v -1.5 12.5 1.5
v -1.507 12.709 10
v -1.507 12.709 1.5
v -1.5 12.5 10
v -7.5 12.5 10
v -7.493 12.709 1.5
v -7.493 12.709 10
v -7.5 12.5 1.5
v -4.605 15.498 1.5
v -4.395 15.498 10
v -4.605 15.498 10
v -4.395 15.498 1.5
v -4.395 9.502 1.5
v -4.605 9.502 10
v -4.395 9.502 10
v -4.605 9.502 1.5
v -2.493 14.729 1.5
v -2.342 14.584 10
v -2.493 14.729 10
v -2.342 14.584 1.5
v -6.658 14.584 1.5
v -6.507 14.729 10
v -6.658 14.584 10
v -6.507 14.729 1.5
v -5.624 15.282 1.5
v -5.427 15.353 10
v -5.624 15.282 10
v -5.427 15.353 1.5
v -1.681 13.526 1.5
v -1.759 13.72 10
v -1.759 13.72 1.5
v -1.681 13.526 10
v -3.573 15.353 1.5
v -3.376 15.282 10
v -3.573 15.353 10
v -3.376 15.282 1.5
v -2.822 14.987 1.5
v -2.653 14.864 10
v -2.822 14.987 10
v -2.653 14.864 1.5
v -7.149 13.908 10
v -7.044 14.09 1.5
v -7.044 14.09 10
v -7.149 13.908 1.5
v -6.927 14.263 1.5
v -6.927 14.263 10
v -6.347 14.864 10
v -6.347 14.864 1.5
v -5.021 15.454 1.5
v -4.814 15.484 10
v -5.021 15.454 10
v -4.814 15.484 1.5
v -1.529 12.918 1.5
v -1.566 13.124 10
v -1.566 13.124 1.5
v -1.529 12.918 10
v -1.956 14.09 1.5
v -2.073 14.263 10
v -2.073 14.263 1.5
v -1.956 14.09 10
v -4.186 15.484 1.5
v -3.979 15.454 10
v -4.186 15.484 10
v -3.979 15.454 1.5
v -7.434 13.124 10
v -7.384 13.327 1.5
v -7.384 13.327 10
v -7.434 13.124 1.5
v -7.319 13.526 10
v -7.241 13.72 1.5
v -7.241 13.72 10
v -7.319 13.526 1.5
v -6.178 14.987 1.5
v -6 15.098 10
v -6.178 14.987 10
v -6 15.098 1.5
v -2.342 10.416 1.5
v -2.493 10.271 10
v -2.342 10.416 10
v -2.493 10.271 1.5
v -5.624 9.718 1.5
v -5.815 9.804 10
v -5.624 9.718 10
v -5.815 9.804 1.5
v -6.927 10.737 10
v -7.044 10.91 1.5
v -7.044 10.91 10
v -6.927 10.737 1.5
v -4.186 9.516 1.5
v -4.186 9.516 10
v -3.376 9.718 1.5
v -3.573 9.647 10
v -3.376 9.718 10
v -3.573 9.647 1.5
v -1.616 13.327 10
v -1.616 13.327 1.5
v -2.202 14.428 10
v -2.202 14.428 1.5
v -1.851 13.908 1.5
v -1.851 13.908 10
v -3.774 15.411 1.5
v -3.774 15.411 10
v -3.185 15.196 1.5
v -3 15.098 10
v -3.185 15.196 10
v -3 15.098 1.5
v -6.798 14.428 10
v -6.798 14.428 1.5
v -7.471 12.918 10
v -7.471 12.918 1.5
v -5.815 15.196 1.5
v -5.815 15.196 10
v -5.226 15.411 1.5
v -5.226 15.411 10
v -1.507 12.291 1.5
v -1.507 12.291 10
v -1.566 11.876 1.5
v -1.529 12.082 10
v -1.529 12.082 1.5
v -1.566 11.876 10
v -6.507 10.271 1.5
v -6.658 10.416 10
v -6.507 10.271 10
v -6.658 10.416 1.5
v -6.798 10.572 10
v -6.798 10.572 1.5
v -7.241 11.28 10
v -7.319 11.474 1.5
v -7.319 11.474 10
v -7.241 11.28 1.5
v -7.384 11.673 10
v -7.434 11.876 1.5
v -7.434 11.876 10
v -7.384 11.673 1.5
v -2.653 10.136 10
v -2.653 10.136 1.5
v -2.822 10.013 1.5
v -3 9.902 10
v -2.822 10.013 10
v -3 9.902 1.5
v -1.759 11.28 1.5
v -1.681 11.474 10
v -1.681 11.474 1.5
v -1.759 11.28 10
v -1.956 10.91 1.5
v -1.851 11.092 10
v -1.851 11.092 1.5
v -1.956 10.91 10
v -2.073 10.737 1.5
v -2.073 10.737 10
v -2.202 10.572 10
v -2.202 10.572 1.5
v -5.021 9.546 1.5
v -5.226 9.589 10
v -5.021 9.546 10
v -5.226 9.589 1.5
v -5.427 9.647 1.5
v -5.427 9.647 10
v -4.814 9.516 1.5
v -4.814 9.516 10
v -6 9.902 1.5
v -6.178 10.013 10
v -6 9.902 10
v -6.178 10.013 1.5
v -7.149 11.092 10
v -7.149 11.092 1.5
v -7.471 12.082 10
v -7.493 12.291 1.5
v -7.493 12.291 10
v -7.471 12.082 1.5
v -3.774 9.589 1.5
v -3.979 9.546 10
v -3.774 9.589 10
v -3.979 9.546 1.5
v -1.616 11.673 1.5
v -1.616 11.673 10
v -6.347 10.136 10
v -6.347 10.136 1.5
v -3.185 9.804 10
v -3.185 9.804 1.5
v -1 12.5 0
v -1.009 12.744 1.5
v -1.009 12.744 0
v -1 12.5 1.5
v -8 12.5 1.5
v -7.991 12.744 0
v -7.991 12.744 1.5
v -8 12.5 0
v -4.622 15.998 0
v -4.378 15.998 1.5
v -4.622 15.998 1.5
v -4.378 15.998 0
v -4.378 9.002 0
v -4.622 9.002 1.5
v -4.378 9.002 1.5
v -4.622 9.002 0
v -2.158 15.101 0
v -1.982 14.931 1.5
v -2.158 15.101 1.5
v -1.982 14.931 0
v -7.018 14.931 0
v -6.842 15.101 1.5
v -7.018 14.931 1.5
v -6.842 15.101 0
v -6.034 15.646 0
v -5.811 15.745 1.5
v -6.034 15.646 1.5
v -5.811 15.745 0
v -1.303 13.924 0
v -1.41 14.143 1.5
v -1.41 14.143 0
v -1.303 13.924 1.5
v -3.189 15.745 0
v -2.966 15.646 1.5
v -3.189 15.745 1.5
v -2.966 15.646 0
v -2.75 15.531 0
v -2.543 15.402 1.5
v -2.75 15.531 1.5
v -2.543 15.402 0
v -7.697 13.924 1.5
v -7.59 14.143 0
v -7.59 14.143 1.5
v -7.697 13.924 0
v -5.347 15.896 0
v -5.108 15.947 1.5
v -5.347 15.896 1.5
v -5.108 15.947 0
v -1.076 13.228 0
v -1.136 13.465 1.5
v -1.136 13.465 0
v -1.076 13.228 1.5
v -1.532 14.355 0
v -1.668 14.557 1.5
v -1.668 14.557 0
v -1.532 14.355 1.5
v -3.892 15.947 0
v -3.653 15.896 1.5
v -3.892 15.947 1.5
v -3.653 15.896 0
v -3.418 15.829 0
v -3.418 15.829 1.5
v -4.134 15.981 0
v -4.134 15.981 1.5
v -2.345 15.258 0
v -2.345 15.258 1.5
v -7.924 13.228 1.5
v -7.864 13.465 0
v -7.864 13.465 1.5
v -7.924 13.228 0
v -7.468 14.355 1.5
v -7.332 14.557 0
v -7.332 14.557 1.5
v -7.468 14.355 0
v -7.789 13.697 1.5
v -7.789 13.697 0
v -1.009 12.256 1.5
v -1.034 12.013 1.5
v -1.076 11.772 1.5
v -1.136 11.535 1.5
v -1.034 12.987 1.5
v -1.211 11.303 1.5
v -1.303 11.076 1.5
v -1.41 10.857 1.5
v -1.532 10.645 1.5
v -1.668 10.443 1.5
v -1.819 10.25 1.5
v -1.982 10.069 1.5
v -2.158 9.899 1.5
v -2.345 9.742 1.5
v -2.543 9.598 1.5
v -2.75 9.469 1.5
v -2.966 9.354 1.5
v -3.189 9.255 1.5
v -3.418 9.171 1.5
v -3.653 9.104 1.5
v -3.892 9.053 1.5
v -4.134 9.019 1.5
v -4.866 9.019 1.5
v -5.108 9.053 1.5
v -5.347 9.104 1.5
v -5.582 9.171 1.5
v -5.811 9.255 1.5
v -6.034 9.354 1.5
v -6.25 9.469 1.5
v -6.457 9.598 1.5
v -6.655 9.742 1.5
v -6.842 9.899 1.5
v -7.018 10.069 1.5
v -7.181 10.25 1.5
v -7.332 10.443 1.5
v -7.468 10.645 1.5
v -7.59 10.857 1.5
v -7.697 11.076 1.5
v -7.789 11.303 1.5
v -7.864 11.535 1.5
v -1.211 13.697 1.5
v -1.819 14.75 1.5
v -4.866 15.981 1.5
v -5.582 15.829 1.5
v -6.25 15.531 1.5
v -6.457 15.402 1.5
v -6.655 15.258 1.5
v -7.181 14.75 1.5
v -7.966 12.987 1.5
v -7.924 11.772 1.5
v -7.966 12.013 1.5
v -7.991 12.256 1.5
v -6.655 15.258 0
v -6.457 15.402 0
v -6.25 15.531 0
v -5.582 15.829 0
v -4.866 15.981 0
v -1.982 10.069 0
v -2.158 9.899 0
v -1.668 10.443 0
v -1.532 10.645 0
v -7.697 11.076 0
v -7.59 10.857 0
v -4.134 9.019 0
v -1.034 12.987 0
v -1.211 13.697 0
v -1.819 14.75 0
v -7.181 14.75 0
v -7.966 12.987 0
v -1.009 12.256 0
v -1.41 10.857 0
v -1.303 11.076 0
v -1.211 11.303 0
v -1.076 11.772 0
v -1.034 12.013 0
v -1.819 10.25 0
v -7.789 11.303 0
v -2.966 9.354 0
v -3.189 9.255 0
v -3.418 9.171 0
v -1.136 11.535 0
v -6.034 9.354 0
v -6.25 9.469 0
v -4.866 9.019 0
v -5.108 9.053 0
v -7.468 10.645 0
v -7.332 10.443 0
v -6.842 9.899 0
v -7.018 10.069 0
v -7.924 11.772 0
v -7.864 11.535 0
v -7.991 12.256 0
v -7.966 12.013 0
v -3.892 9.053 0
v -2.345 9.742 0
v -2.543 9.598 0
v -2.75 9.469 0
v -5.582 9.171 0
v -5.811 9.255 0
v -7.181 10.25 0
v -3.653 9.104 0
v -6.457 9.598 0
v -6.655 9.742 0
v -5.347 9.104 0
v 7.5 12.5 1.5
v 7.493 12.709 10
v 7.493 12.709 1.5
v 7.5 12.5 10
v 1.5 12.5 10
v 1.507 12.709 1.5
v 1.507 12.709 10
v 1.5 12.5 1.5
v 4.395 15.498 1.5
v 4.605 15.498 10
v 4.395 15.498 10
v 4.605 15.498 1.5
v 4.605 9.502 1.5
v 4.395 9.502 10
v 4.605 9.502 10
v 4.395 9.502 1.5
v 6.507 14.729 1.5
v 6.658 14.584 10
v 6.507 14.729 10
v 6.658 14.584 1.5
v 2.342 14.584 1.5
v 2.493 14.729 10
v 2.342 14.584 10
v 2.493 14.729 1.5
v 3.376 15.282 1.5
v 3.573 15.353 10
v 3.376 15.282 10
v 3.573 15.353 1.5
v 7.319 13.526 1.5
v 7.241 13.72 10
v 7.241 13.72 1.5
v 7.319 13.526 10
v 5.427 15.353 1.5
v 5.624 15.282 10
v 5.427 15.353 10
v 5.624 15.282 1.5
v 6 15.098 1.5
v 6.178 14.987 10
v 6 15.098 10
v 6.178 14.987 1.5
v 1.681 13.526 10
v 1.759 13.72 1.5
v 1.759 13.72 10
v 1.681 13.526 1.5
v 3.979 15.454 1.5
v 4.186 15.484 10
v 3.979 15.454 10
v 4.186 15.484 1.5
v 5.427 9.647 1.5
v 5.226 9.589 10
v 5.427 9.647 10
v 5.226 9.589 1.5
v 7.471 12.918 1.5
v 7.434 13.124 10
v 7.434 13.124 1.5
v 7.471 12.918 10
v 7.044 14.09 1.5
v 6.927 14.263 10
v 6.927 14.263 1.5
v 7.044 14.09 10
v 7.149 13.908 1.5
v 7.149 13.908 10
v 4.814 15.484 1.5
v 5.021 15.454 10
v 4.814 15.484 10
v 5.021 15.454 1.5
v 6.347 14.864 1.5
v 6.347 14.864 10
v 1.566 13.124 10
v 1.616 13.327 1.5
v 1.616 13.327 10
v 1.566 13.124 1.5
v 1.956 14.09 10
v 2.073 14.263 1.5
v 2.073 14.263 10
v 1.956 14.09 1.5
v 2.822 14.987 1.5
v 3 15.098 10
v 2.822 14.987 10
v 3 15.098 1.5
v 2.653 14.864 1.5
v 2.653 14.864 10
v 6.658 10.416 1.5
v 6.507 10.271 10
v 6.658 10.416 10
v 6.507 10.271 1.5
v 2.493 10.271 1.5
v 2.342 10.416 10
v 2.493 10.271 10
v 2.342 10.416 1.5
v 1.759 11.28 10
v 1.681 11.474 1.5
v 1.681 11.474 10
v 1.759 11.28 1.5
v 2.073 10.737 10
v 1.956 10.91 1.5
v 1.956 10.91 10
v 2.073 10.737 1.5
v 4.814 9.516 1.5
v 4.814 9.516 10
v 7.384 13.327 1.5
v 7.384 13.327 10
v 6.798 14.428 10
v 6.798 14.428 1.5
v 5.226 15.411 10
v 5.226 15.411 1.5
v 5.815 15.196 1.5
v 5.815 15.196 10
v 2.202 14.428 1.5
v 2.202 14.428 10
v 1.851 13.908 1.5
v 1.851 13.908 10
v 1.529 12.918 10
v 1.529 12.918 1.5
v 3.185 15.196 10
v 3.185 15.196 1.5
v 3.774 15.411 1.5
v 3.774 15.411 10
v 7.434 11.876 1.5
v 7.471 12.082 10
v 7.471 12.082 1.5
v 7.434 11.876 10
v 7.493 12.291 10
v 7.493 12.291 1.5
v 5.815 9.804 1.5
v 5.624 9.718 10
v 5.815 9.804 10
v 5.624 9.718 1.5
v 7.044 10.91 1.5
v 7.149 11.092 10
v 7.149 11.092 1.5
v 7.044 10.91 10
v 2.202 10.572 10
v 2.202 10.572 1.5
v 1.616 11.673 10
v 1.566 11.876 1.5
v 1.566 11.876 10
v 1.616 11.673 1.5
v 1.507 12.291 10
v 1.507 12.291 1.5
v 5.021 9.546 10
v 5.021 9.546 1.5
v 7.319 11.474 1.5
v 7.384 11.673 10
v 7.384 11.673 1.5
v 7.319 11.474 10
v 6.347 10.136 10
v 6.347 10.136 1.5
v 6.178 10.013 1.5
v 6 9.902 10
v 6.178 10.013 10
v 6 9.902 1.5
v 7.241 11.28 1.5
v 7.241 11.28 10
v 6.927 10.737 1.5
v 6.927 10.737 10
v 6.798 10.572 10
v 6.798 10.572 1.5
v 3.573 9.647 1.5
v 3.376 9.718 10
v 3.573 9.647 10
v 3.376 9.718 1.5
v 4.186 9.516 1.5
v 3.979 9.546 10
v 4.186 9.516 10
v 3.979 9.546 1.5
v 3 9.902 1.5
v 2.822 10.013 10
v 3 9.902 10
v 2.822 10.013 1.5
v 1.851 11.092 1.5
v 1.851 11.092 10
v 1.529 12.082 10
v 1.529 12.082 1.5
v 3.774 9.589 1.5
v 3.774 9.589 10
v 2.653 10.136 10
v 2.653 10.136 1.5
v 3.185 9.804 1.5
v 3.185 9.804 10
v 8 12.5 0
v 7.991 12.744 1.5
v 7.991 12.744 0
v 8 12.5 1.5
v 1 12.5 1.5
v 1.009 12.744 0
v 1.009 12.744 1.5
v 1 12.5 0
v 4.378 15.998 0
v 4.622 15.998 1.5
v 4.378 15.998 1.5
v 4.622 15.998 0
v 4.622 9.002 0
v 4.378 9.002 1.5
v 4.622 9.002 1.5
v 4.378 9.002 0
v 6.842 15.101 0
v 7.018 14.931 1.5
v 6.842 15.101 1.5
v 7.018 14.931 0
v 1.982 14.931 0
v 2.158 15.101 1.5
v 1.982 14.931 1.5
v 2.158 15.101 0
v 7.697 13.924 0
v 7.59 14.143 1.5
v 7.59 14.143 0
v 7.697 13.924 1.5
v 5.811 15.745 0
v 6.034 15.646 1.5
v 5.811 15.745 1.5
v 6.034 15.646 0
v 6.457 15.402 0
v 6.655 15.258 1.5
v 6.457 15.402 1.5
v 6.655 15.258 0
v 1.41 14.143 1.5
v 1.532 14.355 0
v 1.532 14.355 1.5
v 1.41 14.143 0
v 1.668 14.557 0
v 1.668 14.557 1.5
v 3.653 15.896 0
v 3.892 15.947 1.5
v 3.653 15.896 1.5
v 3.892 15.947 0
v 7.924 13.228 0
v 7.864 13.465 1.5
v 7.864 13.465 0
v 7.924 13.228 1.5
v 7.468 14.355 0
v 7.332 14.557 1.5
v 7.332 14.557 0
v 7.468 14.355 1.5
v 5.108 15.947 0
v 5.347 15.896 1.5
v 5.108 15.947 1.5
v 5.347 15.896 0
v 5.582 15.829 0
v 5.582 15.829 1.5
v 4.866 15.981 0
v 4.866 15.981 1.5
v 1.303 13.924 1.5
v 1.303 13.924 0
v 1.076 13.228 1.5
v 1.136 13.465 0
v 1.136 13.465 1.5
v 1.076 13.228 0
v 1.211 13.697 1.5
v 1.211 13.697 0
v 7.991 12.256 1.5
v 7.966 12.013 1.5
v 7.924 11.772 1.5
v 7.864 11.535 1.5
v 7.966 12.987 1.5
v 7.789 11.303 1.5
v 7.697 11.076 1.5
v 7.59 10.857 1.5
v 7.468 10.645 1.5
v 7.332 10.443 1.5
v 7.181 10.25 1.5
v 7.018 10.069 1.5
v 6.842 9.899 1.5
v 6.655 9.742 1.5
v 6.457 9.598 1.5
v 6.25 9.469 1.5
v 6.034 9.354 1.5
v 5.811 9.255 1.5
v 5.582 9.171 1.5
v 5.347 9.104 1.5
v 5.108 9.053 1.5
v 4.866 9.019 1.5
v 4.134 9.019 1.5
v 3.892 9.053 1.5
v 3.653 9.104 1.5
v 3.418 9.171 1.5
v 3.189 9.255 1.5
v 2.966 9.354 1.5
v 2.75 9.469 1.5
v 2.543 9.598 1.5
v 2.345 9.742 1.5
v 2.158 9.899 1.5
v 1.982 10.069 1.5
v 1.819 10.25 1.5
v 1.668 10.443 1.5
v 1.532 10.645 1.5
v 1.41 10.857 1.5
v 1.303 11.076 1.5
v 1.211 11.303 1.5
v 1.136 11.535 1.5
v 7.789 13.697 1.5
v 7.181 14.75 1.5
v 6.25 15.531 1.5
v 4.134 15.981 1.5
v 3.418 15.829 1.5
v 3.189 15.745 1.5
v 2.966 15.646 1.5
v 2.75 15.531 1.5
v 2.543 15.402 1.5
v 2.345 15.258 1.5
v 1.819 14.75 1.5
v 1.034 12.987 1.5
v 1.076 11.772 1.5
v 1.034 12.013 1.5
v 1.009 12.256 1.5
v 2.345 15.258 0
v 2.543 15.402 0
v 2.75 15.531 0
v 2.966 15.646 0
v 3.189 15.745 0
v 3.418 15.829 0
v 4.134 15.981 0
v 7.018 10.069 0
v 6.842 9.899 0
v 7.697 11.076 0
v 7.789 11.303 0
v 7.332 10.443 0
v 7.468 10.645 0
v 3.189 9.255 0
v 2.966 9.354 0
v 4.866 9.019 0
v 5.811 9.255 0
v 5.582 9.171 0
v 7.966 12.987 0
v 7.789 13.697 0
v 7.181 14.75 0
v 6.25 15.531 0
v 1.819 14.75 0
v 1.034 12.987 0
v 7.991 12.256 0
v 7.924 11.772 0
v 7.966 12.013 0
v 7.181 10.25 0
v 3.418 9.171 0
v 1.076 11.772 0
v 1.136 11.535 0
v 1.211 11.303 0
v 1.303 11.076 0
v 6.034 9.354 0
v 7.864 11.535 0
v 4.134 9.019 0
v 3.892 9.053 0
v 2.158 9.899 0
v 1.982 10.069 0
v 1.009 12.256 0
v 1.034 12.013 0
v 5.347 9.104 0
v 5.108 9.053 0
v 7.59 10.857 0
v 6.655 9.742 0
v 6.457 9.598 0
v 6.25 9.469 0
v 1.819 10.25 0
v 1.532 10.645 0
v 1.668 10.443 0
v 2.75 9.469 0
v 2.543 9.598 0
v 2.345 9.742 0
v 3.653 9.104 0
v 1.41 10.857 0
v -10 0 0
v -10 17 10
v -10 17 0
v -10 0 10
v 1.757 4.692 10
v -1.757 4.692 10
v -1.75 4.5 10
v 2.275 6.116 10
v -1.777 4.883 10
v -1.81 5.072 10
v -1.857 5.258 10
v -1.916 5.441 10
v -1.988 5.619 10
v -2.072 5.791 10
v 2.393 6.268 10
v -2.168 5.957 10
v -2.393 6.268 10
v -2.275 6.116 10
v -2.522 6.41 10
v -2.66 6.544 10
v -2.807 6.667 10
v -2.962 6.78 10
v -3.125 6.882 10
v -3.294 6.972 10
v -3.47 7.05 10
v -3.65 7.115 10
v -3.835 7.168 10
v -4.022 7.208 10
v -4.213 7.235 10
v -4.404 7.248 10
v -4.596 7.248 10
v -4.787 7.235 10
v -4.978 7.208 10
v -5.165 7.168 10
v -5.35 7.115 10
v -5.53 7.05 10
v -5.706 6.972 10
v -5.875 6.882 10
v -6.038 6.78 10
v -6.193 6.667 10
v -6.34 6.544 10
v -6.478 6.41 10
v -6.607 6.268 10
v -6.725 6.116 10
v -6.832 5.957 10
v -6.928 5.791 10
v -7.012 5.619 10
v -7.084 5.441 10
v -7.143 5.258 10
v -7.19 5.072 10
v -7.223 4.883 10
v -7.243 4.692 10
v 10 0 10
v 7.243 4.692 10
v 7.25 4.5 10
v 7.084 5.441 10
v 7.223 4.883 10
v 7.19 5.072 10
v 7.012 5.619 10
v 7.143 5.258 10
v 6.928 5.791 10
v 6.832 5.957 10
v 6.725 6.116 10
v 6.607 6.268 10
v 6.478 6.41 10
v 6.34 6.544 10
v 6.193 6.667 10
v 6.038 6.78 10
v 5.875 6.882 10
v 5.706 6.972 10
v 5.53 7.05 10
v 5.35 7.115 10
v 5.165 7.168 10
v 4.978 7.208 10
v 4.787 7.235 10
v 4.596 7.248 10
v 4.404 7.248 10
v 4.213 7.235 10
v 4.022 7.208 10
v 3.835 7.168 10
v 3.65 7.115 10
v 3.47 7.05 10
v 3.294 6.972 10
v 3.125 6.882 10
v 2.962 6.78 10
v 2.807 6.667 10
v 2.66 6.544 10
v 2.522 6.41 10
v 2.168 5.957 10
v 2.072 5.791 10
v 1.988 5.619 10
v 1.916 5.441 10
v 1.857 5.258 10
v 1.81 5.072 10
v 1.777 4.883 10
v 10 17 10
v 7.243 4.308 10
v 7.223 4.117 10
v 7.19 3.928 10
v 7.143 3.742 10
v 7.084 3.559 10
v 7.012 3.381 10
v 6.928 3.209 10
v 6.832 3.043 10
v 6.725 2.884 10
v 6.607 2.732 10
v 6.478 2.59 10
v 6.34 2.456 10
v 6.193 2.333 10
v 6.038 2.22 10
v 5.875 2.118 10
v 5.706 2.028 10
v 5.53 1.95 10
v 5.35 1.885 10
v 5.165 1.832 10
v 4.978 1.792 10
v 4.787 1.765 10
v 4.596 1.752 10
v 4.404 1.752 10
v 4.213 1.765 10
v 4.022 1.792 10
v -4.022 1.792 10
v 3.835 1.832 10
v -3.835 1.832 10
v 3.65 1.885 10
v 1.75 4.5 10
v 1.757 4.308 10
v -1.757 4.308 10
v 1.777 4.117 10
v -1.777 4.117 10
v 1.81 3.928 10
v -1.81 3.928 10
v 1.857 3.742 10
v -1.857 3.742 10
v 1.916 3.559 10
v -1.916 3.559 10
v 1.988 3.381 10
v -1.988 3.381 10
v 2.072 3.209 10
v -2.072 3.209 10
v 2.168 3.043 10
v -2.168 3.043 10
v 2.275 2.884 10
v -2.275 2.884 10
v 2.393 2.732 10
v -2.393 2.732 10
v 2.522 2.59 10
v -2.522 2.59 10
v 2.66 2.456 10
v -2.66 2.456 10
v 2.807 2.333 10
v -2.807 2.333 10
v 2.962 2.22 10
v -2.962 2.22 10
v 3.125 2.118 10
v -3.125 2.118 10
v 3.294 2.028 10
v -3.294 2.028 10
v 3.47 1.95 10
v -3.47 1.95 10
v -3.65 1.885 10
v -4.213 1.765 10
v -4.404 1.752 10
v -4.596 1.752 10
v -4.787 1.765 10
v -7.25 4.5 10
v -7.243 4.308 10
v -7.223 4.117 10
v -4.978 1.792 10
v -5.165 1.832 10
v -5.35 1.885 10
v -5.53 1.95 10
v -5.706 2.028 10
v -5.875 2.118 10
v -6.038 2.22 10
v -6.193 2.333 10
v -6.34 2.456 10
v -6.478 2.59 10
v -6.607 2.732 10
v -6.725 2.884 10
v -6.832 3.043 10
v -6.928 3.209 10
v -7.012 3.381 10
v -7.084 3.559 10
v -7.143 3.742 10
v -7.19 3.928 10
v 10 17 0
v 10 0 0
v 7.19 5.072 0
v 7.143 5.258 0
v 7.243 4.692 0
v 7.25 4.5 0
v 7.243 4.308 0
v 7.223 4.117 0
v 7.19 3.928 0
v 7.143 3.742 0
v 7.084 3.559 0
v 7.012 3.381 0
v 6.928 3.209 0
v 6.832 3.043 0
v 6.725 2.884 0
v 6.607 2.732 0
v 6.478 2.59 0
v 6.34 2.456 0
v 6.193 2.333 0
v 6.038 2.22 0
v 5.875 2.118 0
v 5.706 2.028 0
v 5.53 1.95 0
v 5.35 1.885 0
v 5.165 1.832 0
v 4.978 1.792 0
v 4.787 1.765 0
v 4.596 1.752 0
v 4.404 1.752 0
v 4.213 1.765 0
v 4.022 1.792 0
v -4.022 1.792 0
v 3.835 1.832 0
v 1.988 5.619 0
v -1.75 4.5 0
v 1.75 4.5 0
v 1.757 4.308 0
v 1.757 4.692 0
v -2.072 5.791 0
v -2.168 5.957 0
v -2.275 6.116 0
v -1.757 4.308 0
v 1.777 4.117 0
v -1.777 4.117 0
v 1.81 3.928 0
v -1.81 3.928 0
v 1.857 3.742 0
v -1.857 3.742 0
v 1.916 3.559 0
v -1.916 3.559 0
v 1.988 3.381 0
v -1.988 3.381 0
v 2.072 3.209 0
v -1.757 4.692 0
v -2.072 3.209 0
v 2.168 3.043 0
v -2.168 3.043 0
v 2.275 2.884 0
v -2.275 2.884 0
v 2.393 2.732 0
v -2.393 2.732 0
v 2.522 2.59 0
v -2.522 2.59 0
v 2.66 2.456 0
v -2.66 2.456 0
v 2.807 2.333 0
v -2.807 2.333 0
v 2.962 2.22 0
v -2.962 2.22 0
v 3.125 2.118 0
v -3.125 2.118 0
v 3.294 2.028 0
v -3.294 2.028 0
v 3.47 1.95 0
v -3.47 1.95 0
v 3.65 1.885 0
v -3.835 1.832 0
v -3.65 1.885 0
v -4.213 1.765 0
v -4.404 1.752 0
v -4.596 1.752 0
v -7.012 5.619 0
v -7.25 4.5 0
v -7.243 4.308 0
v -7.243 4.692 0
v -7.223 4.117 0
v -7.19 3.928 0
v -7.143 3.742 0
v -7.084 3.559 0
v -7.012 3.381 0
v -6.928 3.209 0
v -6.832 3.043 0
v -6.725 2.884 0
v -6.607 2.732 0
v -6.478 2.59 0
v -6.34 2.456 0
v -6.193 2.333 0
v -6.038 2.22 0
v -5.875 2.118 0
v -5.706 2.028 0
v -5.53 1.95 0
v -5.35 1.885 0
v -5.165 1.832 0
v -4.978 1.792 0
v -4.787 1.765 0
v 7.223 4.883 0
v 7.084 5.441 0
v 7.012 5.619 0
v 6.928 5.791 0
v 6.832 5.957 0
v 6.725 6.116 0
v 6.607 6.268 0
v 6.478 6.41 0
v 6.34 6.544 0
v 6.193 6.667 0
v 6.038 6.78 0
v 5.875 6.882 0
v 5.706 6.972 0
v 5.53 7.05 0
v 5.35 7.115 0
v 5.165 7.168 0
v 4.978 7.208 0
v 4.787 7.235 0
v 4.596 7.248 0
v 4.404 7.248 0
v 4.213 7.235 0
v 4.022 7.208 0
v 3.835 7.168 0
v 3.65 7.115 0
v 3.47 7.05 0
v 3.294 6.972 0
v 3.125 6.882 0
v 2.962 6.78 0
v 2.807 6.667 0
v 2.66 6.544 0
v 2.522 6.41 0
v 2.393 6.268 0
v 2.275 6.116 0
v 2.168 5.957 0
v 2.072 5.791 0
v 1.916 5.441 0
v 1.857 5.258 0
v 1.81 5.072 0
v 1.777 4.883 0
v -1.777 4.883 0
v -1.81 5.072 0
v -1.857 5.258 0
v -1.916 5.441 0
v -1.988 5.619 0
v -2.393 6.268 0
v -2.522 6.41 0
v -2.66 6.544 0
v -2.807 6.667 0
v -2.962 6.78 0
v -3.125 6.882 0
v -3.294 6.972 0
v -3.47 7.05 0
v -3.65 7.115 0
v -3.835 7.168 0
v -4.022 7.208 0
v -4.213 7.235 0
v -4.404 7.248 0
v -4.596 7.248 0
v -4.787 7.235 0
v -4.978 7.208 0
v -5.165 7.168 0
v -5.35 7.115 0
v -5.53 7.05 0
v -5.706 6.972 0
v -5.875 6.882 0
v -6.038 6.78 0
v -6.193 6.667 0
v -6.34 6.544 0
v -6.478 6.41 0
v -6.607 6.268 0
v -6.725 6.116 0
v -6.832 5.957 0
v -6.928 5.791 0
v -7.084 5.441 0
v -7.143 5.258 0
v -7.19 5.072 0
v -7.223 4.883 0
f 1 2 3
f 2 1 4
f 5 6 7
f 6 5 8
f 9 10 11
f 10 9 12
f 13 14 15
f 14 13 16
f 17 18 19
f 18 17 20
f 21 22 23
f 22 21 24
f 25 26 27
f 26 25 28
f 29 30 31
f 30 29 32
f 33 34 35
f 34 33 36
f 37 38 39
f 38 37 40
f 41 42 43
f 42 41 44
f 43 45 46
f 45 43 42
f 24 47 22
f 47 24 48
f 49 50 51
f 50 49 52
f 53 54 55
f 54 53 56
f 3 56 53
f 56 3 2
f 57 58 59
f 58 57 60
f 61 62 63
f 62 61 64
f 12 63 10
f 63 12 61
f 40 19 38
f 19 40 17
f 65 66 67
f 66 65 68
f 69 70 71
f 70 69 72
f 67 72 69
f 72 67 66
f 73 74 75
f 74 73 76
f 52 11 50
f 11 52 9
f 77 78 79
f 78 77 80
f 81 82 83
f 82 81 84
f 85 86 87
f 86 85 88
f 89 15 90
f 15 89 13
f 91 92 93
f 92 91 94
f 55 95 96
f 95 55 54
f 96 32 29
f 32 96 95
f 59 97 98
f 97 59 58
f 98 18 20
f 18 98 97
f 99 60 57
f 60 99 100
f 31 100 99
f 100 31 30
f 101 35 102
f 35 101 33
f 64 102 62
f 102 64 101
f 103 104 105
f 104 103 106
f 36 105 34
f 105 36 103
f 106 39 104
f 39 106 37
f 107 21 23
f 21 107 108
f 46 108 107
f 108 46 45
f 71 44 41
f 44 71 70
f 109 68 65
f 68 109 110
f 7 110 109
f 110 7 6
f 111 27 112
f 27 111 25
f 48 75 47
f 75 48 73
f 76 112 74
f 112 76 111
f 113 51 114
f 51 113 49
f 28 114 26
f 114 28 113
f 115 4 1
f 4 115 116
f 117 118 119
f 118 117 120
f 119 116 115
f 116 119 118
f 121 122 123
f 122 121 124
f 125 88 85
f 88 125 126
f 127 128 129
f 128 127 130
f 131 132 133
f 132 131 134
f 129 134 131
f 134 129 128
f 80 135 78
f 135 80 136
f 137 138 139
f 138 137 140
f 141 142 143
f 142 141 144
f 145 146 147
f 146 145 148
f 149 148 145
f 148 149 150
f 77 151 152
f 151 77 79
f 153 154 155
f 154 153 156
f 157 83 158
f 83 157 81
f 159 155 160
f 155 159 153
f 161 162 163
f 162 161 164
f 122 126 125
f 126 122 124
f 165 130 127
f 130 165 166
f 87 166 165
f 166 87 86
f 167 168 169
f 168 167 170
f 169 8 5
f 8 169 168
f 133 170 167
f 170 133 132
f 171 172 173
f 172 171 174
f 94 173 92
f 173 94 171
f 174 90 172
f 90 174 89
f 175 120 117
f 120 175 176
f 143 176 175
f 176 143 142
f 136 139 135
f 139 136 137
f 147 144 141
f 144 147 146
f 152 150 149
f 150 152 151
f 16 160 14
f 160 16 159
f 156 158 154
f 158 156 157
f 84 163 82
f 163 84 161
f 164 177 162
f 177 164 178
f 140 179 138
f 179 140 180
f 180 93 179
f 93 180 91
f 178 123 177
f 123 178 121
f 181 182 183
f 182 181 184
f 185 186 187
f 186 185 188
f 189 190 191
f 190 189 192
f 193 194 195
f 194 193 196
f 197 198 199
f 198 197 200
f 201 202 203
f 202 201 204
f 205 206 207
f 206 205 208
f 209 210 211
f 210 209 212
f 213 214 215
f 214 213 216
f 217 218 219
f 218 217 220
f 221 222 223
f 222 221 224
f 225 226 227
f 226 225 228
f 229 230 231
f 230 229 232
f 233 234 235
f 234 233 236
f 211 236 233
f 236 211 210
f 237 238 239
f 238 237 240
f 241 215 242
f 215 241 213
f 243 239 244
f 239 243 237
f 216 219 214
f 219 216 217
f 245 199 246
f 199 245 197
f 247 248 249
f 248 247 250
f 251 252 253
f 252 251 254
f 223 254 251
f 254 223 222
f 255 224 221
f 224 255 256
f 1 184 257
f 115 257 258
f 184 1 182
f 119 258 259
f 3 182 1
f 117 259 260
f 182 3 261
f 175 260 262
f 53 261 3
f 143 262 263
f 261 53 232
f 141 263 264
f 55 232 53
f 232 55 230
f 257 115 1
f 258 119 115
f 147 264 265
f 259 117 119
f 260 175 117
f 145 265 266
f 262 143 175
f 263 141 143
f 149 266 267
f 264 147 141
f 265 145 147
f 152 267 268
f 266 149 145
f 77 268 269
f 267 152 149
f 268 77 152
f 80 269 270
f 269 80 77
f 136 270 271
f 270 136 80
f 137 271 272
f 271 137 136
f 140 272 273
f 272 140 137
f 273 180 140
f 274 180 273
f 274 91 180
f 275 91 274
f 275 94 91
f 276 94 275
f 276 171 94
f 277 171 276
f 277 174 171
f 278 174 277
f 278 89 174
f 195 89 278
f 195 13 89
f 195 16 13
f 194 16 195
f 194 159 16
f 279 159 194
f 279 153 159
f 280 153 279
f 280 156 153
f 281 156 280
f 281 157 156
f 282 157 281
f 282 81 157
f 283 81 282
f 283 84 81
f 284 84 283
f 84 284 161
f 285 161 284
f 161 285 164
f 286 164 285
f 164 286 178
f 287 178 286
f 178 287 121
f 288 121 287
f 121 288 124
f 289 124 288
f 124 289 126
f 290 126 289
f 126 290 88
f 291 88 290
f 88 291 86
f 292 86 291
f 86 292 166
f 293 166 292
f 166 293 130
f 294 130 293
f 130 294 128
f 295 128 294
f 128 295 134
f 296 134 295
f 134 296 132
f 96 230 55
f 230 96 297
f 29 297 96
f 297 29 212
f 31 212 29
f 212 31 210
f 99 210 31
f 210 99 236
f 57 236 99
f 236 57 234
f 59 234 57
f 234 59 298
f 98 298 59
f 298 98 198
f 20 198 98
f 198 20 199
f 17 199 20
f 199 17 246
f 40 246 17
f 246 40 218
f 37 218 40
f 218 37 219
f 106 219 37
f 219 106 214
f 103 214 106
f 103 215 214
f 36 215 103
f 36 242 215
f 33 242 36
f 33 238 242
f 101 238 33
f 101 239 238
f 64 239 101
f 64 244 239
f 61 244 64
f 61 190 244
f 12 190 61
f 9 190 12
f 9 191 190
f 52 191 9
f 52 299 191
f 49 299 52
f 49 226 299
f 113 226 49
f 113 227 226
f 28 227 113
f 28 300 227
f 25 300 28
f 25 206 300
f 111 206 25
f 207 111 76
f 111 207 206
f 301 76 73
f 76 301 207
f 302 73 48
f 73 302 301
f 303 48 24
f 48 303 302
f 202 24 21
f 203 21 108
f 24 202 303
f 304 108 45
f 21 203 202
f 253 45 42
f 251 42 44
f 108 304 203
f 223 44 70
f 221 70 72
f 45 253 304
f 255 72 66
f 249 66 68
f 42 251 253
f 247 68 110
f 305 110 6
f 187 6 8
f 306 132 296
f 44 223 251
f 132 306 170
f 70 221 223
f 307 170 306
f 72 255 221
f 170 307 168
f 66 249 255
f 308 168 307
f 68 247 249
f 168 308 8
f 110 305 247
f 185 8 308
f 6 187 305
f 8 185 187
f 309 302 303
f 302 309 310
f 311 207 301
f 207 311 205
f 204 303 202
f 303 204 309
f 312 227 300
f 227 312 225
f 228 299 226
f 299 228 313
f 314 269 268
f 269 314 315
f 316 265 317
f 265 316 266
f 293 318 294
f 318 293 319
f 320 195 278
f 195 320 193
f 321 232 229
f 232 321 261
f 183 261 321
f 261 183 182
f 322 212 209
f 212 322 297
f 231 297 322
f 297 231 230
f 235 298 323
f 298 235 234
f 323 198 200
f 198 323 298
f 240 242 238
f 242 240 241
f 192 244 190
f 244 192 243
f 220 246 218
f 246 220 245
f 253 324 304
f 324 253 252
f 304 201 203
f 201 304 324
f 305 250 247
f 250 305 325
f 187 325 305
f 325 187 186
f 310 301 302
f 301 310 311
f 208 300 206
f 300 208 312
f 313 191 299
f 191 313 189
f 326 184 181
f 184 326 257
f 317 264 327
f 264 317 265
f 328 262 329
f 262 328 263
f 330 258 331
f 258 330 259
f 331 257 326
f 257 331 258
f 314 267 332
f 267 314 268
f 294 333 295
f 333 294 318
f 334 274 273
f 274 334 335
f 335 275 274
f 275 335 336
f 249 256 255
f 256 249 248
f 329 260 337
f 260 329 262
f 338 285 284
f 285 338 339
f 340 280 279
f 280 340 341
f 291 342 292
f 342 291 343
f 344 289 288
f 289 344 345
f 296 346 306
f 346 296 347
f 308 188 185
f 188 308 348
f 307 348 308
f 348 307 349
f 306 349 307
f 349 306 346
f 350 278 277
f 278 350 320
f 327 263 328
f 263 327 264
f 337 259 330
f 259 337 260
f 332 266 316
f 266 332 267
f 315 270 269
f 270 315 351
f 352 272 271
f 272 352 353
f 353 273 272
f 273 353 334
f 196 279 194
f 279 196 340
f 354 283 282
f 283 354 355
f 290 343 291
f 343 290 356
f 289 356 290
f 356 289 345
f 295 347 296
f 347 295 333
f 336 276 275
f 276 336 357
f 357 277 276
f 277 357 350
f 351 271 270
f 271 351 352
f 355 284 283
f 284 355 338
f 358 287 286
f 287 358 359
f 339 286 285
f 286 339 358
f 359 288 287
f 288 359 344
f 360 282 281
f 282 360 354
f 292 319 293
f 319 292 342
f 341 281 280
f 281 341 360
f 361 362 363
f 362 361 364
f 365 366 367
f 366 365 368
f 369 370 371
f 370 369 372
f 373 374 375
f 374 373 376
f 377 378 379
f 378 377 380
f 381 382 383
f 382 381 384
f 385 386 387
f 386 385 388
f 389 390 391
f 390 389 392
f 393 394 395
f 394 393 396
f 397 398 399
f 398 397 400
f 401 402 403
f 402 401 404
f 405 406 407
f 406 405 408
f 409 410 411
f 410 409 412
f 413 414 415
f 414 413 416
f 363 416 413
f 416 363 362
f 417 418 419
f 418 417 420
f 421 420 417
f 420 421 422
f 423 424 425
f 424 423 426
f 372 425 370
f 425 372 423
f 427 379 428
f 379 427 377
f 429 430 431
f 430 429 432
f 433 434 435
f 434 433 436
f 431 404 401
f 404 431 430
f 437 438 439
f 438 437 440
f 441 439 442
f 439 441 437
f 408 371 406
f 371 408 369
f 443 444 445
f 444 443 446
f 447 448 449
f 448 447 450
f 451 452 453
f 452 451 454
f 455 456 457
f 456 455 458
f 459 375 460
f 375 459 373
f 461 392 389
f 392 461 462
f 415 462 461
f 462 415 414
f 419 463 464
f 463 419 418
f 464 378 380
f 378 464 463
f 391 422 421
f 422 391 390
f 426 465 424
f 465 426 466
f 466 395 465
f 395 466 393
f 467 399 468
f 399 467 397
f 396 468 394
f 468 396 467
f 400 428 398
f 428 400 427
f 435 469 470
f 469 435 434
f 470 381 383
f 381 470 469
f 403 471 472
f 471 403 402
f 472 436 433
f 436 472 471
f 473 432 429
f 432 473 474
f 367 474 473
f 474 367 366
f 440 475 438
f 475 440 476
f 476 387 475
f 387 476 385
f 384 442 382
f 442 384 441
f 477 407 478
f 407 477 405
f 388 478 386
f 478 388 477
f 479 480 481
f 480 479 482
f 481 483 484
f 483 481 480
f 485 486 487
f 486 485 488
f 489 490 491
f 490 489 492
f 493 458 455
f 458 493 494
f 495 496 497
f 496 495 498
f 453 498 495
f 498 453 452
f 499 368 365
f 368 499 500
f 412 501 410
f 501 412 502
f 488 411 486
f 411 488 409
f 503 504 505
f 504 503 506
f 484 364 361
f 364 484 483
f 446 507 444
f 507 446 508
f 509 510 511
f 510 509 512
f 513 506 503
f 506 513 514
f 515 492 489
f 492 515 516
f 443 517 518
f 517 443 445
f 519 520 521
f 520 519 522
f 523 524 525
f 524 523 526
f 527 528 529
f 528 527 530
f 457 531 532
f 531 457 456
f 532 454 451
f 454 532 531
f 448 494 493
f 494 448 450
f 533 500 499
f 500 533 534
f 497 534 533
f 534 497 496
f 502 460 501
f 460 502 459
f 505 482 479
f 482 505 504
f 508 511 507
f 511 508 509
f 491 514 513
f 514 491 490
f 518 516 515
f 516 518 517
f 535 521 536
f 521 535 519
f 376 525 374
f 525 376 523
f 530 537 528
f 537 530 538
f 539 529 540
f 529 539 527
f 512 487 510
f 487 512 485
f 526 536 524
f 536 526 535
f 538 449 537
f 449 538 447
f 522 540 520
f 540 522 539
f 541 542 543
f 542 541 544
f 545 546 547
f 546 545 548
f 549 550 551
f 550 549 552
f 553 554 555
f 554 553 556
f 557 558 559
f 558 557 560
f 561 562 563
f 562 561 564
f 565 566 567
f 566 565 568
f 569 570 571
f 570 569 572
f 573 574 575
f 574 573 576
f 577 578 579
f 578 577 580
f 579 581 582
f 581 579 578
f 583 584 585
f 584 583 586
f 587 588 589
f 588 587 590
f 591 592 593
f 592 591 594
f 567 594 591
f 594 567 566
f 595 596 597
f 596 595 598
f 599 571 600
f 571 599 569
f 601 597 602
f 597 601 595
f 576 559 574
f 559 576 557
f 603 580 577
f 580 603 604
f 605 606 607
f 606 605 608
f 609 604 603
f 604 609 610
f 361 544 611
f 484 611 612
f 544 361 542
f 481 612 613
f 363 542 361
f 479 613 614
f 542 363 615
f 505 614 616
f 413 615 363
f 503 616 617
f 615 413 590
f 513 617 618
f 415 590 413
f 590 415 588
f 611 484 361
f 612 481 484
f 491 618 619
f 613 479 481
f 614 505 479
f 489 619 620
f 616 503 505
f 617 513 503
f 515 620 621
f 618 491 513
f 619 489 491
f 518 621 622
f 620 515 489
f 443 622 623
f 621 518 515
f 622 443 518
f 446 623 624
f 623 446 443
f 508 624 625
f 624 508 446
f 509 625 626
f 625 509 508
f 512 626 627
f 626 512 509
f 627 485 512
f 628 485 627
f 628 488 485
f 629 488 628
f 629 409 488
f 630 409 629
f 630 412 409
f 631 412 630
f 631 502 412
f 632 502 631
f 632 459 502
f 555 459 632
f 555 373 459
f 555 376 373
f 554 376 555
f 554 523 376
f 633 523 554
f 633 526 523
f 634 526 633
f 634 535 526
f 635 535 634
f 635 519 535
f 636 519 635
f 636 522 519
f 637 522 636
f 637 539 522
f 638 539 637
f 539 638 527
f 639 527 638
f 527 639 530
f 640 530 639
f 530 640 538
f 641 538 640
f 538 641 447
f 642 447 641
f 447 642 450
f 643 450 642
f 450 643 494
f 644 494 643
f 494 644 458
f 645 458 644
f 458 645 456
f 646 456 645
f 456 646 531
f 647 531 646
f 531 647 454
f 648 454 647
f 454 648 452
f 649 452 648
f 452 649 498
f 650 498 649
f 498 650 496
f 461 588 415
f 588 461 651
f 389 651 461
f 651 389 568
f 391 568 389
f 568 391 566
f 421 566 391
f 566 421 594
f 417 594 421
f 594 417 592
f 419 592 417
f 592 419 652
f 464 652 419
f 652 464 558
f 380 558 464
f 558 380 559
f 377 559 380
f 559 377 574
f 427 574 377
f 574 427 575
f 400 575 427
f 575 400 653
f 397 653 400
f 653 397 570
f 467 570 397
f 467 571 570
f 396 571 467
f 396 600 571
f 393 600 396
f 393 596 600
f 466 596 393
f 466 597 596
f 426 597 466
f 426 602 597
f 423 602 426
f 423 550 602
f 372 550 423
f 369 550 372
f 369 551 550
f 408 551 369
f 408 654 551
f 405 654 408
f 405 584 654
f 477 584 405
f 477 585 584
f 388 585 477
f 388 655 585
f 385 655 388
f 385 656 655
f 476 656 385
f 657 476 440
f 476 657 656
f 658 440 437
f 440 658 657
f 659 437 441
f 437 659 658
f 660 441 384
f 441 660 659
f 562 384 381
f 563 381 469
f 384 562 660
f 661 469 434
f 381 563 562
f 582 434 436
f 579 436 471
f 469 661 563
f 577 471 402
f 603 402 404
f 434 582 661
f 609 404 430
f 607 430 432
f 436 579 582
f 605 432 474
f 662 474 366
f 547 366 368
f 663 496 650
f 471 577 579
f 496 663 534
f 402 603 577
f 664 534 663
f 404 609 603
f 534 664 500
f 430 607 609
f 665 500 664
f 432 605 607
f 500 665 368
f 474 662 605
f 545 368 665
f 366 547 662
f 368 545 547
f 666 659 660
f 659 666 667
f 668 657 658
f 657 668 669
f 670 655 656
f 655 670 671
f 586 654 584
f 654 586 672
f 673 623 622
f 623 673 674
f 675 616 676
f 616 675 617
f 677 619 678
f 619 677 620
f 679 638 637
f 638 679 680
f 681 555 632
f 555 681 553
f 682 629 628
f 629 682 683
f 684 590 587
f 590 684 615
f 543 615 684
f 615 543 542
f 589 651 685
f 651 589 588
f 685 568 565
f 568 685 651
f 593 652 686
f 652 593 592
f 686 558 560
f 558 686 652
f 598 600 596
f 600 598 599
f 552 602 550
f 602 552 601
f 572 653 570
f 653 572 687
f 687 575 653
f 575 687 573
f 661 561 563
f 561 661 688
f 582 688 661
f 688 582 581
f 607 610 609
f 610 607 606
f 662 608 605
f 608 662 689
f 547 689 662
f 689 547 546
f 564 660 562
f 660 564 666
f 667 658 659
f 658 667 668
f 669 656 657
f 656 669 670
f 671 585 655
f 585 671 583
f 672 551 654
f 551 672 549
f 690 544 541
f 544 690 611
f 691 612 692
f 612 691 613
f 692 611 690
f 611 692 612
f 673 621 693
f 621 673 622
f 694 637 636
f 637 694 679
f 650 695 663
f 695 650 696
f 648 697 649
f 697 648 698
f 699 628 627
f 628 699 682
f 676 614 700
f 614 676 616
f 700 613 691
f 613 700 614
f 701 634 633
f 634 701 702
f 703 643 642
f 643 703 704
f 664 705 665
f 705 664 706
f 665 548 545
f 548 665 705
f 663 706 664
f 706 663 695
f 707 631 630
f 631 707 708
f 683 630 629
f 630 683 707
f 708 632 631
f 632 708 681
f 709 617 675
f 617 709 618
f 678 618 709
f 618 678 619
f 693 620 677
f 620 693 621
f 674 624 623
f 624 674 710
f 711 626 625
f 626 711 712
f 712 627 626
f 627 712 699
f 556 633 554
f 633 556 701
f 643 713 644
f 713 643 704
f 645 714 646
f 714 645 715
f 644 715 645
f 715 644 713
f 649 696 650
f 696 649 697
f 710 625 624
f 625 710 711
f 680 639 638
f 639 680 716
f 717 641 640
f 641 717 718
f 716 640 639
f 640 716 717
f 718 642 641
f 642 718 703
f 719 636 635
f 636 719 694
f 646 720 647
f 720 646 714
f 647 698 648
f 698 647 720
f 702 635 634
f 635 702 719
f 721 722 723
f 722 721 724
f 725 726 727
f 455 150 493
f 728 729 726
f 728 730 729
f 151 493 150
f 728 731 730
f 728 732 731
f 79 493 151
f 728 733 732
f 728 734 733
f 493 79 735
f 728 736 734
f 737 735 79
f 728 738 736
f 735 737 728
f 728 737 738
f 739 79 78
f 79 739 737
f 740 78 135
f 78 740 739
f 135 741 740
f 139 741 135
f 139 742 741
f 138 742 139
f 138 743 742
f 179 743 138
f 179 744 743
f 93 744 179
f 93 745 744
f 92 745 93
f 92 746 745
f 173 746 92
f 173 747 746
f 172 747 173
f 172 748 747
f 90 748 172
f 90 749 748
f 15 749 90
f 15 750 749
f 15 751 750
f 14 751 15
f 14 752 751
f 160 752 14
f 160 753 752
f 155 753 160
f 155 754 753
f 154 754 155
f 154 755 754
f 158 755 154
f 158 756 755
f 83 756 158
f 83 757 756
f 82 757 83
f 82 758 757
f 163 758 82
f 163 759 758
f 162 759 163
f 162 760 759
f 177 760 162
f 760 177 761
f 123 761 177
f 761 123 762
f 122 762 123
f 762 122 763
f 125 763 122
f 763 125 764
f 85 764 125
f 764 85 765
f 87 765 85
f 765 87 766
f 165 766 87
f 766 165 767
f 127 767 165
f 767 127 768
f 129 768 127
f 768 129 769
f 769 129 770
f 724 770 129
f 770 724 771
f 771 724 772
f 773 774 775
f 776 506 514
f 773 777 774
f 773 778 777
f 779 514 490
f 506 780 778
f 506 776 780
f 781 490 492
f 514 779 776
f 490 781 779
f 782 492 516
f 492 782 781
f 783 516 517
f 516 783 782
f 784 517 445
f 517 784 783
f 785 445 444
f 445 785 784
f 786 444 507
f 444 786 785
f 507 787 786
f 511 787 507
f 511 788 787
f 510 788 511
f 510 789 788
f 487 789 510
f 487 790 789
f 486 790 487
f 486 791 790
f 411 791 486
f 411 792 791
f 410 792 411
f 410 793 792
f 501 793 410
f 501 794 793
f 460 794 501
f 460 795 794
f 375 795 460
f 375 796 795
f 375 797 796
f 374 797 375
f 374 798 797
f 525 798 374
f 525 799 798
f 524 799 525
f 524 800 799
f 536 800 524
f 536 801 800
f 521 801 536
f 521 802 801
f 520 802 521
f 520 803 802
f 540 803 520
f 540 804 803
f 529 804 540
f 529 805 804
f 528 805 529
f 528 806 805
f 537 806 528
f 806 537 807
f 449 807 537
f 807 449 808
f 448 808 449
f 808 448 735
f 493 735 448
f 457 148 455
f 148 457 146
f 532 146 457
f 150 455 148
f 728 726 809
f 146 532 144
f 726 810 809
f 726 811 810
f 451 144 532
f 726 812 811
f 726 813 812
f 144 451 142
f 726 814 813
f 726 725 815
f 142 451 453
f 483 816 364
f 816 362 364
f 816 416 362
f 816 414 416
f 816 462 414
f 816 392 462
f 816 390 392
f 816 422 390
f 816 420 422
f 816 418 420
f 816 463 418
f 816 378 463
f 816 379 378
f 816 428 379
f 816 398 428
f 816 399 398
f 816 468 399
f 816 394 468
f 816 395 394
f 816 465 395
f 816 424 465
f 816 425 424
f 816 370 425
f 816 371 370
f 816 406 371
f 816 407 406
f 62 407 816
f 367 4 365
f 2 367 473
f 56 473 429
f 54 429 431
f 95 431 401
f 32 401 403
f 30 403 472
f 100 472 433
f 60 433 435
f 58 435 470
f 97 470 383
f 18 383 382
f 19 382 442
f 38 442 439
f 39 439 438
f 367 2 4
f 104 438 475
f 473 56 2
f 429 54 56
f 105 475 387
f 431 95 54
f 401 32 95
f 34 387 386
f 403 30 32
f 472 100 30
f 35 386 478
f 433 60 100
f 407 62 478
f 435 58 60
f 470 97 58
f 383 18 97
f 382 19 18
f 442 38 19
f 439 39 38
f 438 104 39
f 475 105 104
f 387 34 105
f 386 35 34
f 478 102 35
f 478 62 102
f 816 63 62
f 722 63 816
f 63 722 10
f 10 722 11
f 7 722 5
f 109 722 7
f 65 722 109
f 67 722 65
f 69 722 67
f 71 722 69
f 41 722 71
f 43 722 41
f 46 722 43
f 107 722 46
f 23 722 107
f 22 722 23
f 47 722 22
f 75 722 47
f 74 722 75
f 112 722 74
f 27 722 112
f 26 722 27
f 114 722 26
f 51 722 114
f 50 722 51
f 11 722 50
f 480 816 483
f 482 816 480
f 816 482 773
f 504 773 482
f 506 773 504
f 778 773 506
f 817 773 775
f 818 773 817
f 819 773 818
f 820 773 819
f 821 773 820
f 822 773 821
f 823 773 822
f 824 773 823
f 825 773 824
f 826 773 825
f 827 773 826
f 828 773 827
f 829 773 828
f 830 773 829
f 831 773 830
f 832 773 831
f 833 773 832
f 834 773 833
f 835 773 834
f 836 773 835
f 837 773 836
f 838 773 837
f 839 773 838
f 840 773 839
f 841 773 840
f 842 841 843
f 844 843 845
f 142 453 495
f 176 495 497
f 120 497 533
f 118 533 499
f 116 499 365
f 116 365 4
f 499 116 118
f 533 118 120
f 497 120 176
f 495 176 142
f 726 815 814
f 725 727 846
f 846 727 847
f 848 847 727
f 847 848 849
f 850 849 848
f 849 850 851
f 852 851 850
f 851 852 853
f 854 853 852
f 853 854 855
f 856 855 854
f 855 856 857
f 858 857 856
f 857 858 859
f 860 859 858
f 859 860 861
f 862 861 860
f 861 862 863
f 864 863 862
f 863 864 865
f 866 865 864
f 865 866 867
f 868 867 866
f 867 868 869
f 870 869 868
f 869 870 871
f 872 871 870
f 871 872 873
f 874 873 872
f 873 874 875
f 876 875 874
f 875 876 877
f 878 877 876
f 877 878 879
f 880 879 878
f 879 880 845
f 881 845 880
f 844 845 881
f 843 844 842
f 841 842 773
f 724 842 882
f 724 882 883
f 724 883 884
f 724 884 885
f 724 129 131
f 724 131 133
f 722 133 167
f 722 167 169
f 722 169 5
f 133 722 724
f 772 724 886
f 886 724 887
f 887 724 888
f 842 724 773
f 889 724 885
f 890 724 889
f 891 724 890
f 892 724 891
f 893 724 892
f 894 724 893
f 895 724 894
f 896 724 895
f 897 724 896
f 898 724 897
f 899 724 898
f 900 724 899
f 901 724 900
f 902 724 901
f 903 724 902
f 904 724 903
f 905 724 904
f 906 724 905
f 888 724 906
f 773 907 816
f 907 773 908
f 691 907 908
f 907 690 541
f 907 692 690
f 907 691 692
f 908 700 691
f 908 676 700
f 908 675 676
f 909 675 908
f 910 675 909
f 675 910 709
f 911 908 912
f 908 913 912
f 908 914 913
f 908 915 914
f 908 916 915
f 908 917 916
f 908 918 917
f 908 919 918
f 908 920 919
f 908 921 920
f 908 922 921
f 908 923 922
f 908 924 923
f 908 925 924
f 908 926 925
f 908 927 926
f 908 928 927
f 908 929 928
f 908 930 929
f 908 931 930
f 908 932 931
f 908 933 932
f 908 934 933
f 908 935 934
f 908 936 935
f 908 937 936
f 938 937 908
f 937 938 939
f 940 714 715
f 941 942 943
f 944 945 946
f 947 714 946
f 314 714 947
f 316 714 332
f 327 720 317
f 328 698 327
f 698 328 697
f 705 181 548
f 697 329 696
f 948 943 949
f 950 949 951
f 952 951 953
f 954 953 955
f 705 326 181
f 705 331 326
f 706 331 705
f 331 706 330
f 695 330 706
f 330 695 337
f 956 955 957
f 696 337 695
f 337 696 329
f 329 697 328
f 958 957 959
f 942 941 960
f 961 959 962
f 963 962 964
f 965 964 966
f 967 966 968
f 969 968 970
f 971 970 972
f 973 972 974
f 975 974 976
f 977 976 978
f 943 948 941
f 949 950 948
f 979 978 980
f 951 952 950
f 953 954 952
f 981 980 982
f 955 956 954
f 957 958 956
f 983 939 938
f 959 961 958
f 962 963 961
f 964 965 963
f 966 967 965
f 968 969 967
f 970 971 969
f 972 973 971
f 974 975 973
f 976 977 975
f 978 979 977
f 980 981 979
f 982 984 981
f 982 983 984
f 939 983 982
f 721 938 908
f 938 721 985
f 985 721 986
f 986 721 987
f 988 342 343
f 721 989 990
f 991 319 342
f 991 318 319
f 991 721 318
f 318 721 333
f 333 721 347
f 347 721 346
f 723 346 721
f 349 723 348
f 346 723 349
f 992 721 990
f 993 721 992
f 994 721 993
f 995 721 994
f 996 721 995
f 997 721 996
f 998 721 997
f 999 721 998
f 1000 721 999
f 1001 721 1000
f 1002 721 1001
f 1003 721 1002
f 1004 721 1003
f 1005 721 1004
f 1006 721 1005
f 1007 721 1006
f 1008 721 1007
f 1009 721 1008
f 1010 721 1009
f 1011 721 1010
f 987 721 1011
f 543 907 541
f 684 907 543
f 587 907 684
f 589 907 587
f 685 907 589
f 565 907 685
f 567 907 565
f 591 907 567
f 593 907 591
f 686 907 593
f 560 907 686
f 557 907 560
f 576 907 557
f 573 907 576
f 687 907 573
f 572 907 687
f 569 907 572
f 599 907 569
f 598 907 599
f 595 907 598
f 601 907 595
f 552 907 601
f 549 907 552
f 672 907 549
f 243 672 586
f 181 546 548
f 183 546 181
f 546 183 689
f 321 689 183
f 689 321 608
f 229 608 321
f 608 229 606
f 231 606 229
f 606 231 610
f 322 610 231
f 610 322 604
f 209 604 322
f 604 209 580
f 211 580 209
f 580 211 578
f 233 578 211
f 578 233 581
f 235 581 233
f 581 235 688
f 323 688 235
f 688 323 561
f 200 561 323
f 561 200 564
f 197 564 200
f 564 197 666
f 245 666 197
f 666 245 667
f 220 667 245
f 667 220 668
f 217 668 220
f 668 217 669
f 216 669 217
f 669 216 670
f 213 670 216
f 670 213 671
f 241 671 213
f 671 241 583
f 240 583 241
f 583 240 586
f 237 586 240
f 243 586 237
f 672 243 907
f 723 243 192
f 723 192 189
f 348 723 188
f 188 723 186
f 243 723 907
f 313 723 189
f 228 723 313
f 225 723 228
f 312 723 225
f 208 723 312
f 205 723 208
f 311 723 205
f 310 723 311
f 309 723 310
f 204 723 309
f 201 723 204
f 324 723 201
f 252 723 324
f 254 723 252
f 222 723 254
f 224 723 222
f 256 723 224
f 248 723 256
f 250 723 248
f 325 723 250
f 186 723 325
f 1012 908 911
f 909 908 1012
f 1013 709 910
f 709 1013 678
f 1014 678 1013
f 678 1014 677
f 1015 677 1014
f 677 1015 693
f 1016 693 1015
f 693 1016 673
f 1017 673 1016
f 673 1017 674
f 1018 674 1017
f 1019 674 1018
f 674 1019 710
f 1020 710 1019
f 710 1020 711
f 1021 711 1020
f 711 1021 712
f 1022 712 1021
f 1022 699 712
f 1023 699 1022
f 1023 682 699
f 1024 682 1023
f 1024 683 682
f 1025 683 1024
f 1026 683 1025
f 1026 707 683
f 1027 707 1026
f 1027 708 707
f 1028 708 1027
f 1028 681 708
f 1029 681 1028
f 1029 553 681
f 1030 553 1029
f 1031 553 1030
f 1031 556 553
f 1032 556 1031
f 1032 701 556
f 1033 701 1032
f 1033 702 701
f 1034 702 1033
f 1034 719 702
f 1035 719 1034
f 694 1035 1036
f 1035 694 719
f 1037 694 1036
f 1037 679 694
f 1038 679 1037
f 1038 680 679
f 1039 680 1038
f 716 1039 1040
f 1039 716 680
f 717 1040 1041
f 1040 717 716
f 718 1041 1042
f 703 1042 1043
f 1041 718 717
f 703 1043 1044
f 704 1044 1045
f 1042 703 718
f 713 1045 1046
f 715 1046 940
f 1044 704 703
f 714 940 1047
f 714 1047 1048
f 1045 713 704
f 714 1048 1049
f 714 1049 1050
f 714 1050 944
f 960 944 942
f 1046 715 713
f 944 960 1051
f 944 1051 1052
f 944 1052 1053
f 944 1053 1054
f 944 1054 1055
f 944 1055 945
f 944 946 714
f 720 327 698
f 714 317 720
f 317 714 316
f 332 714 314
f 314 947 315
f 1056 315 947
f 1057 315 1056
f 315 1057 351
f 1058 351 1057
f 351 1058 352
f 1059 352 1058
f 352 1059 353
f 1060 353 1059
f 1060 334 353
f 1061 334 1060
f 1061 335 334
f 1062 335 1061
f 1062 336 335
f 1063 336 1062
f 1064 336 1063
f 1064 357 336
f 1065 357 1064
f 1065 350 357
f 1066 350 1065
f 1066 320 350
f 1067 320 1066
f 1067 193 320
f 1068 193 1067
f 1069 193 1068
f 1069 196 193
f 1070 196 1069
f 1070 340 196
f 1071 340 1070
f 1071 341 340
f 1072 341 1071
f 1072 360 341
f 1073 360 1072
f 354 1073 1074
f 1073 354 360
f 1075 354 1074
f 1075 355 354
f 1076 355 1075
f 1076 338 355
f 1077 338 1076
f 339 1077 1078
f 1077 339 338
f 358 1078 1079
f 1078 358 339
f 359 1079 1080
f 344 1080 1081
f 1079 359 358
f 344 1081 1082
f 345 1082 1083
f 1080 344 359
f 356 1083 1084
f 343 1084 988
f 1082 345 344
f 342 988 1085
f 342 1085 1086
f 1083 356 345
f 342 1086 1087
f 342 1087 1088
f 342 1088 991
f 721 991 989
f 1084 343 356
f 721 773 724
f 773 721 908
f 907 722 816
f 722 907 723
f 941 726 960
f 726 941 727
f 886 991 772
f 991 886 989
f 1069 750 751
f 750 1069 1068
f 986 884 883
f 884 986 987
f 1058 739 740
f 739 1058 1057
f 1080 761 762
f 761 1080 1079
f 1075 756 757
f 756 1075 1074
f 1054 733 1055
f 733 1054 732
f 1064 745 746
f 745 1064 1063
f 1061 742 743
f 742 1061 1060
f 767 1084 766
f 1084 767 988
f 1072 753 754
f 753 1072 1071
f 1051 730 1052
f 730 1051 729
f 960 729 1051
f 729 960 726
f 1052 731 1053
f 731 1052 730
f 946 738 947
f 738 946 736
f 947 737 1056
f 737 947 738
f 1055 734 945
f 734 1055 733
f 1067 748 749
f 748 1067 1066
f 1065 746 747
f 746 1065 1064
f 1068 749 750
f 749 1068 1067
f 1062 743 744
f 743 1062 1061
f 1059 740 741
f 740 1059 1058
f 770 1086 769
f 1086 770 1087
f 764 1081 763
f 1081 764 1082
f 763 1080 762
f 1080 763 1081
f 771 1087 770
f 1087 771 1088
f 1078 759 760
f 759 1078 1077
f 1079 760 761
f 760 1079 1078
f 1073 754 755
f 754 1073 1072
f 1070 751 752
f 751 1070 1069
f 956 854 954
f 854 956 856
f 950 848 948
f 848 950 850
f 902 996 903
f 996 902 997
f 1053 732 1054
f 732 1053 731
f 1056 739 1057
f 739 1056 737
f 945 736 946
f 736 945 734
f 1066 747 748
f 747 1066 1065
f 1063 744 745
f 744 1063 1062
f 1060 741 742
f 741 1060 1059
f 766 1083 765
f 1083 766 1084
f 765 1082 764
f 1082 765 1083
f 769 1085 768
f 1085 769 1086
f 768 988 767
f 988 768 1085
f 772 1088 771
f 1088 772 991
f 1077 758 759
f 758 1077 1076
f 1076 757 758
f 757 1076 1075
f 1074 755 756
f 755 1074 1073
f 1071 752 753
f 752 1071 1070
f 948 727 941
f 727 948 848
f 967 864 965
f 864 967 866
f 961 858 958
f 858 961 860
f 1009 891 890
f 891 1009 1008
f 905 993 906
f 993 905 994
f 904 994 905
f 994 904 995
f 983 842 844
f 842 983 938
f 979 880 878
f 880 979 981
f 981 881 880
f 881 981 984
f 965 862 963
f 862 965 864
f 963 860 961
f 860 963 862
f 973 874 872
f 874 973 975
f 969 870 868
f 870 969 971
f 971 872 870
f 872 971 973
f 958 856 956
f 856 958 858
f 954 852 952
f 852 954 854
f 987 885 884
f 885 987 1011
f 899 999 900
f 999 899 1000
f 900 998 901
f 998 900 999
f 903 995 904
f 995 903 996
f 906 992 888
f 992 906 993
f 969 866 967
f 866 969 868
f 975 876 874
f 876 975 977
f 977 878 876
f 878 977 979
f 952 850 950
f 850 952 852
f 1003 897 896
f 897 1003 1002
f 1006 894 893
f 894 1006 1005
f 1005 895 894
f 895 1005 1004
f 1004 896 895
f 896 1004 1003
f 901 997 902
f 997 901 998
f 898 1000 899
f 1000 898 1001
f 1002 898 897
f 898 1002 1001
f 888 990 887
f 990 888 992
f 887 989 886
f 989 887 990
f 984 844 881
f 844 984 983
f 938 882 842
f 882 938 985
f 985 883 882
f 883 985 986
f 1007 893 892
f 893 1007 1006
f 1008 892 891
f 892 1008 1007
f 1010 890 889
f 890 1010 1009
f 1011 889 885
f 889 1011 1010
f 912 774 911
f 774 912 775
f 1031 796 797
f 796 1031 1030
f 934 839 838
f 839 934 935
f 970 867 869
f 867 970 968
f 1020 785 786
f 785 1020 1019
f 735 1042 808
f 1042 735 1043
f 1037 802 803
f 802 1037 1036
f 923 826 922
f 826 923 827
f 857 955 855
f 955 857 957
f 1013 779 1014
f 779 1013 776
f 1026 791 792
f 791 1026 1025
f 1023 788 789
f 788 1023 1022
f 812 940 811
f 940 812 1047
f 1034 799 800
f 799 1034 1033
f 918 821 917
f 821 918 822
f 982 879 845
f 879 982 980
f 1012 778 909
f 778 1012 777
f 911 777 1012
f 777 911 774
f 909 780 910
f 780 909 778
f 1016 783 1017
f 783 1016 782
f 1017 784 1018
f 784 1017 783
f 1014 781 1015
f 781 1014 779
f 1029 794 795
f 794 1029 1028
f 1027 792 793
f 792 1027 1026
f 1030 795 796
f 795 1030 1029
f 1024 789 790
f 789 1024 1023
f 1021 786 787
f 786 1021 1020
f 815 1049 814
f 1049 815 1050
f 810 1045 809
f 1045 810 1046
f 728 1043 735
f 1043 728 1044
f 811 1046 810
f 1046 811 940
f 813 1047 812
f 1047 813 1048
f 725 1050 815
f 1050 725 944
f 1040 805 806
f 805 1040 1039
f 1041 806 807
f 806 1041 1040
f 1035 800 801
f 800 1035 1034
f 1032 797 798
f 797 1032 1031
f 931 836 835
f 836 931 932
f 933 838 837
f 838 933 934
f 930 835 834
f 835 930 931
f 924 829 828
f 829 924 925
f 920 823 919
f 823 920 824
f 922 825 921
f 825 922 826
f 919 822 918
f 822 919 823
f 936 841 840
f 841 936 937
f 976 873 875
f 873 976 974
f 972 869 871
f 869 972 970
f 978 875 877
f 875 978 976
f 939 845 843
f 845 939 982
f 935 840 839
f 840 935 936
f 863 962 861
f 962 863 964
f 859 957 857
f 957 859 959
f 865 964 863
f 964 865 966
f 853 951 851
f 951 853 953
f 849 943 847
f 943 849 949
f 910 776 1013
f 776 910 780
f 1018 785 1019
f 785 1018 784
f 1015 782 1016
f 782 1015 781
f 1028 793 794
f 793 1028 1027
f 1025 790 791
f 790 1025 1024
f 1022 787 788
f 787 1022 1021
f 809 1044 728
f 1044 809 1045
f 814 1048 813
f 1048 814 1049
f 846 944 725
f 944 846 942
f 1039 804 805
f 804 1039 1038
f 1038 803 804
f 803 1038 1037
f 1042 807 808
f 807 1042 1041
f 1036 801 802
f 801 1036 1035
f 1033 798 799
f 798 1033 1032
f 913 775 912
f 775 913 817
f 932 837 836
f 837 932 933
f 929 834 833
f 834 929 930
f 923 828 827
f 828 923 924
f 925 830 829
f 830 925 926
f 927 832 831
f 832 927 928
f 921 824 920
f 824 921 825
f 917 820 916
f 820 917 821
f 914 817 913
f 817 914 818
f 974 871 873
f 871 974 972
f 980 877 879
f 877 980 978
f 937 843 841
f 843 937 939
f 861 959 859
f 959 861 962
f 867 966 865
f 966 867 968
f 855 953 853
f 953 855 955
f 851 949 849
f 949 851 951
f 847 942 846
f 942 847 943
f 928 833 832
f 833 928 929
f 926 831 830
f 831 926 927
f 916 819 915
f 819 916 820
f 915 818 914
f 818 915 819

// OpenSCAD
$fn = 90;

module lineSensor() {
    function size(v) = sqrt(v.x*v.x + v.y*v.y + v.z*v.z);

    fs1 = [-4.5, 4.5, -1];
    fs2 = [4.5, 4.5, -1];

    led1 = [-4.5, 12.5, -2];
    led2 = [4.5, 12.5, -2];

    ch = 10;

    difference() {
        translate([-10, 0, 0]) cube([20, 17, ch]);
        
        translate(fs1) {
            cylinder(h = 18, d = 5.5);
            }
        translate(fs2) cylinder(h = 18, d = 5.5);
        
        translate(led1) {
            cylinder(h = ch + 10, d = 6.0);
            cylinder(h = 3.5, d = 7.0);
            }
        translate(led2) {
            cylinder(h = ch + 10, d = 6.0);
            cylinder(h = 3.5, d = 7.0);
            }
        
        }
    }

lineSensor();
